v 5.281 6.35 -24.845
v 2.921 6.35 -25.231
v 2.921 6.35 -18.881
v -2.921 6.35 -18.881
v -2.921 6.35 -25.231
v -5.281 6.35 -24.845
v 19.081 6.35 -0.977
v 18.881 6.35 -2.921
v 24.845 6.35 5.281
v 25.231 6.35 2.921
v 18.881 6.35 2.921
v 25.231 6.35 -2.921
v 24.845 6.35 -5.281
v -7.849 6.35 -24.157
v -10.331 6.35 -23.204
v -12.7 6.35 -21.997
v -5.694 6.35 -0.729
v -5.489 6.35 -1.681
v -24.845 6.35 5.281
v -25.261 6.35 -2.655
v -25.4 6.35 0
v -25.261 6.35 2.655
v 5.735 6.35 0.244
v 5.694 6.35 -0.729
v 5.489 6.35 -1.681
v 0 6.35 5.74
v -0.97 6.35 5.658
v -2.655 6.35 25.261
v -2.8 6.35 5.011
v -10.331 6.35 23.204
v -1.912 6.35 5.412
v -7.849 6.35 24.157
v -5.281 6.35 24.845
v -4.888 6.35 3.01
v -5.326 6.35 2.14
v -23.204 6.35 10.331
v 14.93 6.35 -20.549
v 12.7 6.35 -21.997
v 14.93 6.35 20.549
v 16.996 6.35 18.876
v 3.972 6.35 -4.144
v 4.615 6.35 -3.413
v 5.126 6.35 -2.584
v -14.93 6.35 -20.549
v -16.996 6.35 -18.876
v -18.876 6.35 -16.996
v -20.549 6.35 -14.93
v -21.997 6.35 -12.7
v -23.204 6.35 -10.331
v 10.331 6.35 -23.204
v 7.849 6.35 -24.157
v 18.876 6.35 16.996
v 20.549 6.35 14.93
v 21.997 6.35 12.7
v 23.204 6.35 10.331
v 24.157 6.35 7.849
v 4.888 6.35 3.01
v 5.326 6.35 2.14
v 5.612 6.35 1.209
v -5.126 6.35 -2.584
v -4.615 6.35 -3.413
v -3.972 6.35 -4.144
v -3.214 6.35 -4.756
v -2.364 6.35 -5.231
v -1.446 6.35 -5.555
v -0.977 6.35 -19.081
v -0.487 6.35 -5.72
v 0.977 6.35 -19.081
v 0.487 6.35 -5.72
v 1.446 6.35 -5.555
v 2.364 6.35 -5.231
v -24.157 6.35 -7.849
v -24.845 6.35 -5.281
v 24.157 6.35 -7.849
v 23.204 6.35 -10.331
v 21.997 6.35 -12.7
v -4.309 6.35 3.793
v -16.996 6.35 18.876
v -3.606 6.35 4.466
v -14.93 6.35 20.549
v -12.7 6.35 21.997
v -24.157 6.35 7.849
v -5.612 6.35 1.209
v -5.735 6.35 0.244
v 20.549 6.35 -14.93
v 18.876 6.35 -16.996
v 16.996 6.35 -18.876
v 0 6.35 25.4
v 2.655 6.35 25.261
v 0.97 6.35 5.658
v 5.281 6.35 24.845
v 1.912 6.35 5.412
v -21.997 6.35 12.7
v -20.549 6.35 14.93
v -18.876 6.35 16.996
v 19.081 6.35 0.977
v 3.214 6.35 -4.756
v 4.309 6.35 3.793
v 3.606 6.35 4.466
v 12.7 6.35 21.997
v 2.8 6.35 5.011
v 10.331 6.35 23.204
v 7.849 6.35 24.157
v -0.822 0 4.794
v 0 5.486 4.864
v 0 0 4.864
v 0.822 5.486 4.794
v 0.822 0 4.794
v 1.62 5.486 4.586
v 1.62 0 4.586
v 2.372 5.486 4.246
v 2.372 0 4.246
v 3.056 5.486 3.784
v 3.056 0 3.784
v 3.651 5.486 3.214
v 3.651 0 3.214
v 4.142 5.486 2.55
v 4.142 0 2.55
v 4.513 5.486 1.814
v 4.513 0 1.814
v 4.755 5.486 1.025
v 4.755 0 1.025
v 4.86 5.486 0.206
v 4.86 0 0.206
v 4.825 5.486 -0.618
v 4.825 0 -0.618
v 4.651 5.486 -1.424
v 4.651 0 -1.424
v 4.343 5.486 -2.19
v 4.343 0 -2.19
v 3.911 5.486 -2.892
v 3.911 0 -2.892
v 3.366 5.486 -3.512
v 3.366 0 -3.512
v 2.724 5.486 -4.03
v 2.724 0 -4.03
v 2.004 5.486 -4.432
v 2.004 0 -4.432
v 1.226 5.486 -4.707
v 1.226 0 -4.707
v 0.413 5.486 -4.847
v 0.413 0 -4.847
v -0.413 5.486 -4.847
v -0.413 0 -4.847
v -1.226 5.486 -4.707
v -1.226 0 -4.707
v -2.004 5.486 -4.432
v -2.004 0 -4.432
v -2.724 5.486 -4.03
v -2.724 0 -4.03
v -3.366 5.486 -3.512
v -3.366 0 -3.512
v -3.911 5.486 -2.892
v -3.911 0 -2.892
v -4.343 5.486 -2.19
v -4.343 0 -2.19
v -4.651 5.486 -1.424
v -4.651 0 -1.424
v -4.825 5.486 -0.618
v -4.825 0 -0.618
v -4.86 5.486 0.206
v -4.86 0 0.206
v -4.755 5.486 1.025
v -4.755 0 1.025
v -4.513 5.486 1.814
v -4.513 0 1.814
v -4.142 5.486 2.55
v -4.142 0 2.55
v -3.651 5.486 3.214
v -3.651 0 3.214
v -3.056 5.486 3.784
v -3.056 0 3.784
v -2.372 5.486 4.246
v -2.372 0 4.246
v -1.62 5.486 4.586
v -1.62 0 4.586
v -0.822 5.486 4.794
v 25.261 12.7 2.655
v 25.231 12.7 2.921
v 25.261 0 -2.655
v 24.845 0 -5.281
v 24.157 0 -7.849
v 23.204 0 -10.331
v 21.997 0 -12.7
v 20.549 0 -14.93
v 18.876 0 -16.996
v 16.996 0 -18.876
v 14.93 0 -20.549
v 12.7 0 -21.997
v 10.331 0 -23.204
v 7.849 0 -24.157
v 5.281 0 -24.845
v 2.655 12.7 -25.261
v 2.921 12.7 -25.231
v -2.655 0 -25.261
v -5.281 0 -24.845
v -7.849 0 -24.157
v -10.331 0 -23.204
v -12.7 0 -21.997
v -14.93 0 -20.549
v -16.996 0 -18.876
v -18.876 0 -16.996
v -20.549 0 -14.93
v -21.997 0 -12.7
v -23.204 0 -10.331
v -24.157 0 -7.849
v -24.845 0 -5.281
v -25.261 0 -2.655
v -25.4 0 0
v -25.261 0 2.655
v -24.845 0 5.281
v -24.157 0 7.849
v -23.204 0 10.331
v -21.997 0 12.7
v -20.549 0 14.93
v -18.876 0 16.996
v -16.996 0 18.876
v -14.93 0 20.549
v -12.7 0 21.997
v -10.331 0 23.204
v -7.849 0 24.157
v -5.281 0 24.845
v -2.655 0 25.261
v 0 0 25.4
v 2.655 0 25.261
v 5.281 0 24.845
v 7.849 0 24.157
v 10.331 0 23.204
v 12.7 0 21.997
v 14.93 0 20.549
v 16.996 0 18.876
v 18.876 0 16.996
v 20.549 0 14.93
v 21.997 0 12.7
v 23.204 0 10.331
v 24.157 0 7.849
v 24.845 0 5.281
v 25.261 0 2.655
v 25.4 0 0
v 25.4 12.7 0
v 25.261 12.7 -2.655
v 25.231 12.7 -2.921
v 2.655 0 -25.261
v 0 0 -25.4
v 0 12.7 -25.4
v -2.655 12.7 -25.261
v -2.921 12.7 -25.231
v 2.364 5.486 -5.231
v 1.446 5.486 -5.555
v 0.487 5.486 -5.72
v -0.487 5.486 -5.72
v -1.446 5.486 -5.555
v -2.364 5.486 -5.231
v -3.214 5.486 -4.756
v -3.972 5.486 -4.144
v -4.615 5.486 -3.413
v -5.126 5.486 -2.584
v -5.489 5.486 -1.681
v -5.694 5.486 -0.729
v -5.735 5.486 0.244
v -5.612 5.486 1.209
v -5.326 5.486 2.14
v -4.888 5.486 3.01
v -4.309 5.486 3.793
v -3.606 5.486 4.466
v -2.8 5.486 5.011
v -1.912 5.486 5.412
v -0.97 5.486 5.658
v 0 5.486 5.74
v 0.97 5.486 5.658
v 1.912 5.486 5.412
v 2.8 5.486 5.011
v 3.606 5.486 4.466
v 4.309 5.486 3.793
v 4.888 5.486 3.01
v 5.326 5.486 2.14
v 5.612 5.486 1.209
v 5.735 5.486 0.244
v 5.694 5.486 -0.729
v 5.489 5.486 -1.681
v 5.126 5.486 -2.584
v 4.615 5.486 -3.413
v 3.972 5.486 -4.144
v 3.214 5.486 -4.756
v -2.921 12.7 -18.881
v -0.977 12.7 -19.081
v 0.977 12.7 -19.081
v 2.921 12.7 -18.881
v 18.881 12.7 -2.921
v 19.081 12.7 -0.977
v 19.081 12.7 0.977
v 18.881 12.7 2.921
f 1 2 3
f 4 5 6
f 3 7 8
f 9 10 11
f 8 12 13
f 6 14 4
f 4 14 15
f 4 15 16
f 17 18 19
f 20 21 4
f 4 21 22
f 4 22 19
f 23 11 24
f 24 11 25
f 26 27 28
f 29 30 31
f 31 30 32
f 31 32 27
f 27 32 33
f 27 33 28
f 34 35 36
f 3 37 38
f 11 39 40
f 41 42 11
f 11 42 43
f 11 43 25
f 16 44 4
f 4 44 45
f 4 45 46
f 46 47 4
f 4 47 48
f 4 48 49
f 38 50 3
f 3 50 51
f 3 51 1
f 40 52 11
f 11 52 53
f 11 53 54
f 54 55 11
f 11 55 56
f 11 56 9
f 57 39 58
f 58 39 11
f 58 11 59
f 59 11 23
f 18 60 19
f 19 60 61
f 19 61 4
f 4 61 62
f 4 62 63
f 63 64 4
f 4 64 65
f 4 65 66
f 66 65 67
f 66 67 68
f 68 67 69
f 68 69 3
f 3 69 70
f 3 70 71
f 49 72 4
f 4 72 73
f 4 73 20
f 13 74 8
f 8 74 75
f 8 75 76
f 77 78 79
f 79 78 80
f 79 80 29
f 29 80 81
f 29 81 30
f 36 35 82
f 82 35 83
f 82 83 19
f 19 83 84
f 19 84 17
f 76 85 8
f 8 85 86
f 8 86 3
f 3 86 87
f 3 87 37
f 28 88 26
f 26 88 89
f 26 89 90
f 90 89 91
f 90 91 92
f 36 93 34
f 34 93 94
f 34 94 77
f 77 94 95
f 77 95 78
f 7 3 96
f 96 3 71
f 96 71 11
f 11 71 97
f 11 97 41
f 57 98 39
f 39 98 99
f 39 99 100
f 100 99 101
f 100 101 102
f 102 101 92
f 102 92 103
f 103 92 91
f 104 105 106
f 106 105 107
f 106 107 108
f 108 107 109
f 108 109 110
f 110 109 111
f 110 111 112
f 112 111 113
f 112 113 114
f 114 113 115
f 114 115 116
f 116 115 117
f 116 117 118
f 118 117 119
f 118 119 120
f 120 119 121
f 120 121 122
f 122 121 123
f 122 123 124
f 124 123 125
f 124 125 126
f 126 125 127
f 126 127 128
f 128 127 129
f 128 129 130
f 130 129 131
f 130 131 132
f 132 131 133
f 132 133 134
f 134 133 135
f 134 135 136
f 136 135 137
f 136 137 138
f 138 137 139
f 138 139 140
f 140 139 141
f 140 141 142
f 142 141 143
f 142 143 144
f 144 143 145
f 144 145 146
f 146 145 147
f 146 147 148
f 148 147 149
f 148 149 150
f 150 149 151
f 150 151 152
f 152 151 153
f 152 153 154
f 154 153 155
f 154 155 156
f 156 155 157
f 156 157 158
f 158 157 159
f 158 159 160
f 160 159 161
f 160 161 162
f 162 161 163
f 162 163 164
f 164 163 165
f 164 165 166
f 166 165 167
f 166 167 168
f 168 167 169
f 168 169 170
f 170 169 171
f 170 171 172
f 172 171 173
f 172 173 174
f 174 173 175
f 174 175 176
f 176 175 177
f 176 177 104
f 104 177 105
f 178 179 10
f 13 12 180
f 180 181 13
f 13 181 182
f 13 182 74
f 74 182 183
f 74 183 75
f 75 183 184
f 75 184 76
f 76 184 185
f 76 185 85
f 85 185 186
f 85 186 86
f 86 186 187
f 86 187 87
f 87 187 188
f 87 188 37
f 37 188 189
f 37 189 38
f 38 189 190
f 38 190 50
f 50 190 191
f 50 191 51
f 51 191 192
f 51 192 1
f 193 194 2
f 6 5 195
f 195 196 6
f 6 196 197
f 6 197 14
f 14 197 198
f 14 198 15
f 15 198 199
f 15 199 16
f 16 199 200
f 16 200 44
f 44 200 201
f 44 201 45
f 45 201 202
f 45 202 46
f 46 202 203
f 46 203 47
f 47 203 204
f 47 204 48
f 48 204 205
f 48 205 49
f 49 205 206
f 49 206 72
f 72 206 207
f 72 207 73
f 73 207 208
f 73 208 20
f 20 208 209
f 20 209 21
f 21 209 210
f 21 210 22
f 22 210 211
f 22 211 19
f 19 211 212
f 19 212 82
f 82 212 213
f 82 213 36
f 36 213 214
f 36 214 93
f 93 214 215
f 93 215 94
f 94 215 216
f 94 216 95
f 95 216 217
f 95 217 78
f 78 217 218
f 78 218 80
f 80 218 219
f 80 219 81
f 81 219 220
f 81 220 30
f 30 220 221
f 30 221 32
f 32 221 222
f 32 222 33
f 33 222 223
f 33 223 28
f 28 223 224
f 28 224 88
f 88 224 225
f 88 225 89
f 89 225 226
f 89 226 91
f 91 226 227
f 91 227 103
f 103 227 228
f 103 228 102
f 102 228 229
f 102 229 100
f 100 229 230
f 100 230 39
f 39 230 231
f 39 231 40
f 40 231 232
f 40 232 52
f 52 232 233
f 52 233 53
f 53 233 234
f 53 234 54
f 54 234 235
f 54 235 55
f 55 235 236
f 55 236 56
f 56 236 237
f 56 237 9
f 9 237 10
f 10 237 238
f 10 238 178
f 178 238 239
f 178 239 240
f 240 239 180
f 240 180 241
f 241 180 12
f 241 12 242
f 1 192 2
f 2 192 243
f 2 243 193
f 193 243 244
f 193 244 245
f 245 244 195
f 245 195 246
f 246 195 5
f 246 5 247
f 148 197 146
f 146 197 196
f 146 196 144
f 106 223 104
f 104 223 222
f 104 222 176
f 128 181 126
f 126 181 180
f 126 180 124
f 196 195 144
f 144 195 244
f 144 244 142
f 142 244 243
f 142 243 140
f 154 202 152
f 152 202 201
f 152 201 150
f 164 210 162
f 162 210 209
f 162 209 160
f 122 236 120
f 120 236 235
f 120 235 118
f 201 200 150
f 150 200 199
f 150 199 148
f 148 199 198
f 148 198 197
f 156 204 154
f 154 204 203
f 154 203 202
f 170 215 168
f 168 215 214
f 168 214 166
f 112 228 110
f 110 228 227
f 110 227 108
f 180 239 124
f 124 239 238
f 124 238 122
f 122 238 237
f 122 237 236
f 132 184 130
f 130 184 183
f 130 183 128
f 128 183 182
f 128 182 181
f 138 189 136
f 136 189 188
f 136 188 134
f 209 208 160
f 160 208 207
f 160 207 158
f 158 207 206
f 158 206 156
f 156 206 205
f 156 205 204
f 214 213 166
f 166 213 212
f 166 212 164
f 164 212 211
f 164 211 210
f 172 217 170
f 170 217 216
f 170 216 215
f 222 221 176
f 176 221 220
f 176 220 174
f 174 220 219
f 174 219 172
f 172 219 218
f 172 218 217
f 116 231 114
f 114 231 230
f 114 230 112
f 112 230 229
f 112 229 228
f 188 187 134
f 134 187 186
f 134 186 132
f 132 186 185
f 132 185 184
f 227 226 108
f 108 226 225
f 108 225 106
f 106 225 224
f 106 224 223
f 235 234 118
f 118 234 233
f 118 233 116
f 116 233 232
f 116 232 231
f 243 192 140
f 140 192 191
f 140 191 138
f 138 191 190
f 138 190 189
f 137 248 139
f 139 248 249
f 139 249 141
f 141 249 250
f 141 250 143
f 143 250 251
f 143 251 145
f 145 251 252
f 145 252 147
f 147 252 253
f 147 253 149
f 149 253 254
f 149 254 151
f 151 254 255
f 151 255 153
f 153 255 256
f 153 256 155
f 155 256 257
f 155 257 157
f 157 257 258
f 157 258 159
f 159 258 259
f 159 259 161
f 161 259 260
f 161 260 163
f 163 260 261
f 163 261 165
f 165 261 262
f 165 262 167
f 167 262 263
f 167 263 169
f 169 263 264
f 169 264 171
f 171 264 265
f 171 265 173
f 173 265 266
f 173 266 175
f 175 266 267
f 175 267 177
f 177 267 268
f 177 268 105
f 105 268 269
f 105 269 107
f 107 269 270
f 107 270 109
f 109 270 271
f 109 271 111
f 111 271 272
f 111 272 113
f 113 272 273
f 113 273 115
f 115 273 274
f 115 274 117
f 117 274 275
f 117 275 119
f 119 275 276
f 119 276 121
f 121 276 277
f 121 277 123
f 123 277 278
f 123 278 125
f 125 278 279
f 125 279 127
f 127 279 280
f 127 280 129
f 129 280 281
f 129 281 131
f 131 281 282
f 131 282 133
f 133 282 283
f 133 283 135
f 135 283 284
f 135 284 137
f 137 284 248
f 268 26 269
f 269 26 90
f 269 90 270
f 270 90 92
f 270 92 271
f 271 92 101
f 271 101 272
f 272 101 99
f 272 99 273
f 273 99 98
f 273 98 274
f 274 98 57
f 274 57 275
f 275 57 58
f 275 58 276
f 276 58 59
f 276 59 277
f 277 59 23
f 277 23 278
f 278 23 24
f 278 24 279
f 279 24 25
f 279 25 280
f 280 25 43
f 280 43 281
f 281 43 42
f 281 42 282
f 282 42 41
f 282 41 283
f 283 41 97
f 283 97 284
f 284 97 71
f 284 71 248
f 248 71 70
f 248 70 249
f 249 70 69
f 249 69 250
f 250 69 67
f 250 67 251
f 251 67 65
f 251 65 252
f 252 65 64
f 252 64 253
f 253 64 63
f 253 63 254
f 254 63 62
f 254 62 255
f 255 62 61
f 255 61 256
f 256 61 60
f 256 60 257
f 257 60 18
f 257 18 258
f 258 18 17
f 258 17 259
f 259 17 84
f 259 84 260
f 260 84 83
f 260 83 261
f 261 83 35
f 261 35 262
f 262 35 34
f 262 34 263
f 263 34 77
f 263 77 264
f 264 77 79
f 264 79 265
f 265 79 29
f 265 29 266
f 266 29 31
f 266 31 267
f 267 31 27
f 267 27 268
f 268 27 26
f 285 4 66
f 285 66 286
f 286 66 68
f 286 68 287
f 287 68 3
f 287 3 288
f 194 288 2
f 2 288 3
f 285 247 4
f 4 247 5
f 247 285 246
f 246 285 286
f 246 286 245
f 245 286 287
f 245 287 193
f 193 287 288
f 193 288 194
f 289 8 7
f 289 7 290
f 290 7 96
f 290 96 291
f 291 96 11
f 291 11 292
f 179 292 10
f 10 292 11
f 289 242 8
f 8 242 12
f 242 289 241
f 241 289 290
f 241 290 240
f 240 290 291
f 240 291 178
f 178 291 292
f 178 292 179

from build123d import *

# Parameters (mm, degrees)
SKETCH1_R           = 25.4
BOSS_EXTRUDE1_DEPTH = 6.35
SKETCH2_R           = 4.8641
CUT_EXTRUDE1_DEPTH  = 37.477972806
SKETCH3_R           = 5.7404
CUT_EXTRUDE3_DEPTH  = 0.8636
BOSS_EXTRUDE2_DEPTH = 6.35


with BuildPart() as part:
    # Sketch1 → Boss-Extrude1 (new body)
    with BuildSketch(Plane(origin=(0, 0, 0), x_dir=(1, 0, 0), z_dir=(0, 1, 0))):
        with Locations(Location((0, 0, 0), (0, 0, 270))):
            Circle(SKETCH1_R)
    extrude(amount=BOSS_EXTRUDE1_DEPTH)

    # Sketch2 → Cut-Extrude1 (cut, through all)
    with BuildSketch(Plane(origin=(0, 6.35, 0), x_dir=(1, 0, 0), z_dir=(0, 1, 0))):
        with Locations(Location((0, 0, 0), (0, 0, 270))):
            Circle(SKETCH2_R)
    extrude(amount=-CUT_EXTRUDE1_DEPTH, mode=Mode.SUBTRACT)

    # Sketch3 → Cut-Extrude3 (cut)
    with BuildSketch(Plane(origin=(0, 6.35, 0), x_dir=(1, 0, 0), z_dir=(0, 1, 0))):
        with Locations(Location((0, 0, 0), (0, 0, 270))):
            Circle(SKETCH3_R)
    extrude(amount=-CUT_EXTRUDE3_DEPTH, mode=Mode.SUBTRACT)

    # Sketch4 → Boss-Extrude2 (add)
    with BuildSketch(Plane(origin=(0, 6.35, 0), x_dir=(1, 0, 0), z_dir=(0, 1, 0))):
        with BuildLine():
            Line((2.921, 18.881483488), (2.921, 25.231483488))
            ThreePointArc((2.921, 25.231483488), (0, 25.4), (-2.921, 25.231483488))
            Line((-2.921, 25.231483488), (-2.921, 18.881483488))
            ThreePointArc((-2.921, 18.881483488), (0, 19.106089597), (2.921, 18.881483488))
        make_face()
        with BuildLine():
            Line((25.231483488, 2.921), (18.881483488, 2.921))
            ThreePointArc((18.881483488, 2.921), (19.106089597, 0), (18.881483488, -2.921))
            Line((18.881483488, -2.921), (25.231483488, -2.921))
            ThreePointArc((25.231483488, -2.921), (25.357835876, -1.462928468), (25.4, 0))
            ThreePointArc((25.4, 0), (25.357835876, 1.462928468), (25.231483488, 2.921))
        make_face()
    extrude(amount=BOSS_EXTRUDE2_DEPTH)


solid = part.part
